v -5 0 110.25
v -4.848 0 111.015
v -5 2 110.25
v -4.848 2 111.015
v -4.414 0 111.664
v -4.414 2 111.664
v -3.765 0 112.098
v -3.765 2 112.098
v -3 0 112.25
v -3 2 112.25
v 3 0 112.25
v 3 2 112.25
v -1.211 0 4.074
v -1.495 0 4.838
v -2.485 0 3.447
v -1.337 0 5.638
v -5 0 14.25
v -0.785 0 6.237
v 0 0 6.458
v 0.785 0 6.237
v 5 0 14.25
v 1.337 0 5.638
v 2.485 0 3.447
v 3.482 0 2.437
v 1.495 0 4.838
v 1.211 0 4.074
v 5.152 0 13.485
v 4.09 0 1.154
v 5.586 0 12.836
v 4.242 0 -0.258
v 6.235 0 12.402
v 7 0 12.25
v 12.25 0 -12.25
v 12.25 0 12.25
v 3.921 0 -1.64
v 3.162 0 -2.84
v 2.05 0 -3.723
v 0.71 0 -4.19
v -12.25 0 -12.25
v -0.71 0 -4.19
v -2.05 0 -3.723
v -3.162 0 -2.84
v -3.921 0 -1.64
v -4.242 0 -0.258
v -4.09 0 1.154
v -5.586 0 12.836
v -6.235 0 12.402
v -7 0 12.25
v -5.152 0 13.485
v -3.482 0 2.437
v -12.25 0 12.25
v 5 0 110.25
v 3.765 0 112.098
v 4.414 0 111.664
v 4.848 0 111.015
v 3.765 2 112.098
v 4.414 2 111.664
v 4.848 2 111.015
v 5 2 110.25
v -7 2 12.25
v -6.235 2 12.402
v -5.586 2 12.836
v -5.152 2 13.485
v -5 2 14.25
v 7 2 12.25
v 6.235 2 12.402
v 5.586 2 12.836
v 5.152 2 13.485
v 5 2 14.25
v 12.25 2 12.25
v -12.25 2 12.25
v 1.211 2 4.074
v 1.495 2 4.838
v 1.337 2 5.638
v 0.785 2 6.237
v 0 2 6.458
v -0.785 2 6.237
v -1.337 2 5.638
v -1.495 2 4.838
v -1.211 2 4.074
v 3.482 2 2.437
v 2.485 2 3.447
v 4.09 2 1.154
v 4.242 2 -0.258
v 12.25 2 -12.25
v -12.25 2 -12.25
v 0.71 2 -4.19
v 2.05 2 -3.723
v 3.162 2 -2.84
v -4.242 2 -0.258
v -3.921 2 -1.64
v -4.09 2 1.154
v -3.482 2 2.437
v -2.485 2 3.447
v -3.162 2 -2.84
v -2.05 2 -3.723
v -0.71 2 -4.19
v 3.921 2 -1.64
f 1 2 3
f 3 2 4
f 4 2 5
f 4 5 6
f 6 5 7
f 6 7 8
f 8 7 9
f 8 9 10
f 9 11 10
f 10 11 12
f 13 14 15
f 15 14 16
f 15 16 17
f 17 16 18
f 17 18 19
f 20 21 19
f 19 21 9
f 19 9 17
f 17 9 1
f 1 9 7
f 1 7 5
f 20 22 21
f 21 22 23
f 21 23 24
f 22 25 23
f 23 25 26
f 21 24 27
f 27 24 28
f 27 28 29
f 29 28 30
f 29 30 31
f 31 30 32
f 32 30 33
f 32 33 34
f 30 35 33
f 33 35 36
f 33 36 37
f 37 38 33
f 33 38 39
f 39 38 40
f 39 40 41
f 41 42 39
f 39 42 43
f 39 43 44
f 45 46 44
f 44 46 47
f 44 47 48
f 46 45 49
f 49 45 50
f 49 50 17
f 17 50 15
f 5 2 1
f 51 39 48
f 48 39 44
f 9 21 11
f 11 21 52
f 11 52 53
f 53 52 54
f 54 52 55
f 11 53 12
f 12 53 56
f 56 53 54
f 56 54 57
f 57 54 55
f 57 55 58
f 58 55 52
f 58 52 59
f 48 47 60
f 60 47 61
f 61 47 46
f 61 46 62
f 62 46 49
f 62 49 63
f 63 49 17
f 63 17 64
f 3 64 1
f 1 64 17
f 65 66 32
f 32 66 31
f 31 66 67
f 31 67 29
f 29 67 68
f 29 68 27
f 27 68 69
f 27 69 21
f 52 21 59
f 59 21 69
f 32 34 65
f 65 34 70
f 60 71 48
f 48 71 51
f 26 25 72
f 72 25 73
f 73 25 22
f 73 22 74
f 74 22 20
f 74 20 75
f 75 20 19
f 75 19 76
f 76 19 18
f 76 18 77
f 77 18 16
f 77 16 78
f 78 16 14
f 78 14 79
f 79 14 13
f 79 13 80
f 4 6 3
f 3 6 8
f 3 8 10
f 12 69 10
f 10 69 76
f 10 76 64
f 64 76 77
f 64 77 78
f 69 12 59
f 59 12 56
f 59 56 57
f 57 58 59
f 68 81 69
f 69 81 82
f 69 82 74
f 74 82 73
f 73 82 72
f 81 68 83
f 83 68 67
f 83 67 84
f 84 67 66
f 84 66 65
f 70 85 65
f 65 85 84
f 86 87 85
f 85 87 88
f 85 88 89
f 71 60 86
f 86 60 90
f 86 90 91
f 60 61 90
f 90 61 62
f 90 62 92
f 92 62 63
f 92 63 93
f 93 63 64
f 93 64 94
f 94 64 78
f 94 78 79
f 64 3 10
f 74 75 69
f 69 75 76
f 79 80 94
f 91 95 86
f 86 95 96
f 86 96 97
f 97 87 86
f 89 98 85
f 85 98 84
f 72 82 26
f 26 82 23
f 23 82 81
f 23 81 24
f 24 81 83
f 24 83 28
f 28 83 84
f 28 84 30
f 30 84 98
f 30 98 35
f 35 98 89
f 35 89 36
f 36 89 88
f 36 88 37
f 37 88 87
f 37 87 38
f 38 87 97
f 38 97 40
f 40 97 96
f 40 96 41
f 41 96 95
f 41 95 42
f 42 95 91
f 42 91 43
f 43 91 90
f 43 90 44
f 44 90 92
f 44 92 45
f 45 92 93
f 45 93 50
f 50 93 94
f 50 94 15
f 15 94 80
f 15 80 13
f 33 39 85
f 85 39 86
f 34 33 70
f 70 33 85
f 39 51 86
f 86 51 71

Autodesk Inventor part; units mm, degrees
ref_plane "YZ Plane" through (0, 0, 0) normal (1, 0, 0) x (0, 1, 0)
ref_plane "XZ Plane" through (0, 0, 0) normal (0, 1, 0) x (-1, 0, 0)
ref_plane "XY Plane" through (0, 0, 0) normal (0, 0, 1) x (1, 0, 0)
sketch "Sketch1" plane through (0, 0, 0) normal (0, 1, 0) x (-1, 0, 0)
  circle A0 centre (0, 0) radius 4.25
  line L0 (-12.25, -12.25) -> (12.25, -12.25)
  line L1 (12.25, -12.25) -> (12.25, 12.25)
  line L2 (12.25, 12.25) -> (-12.25, 12.25)
  line L3 (-12.25, 12.25) -> (-12.25, -12.25)
  line L4 (-12.25, -12.25) -> (12.25, 12.25) construction
  line L5 (12.25, -12.25) -> (-12.25, 12.25) construction
  dimension "d0" = 24.5
  dimension "d1" = 8.5
extrude "Extrusion1" add sketch "Sketch1" along normal blind 2
sketch "Sketch2" plane through (0, 2, 0) normal (0, 1, 0) x (1, 0, 0)
  circle A0 centre (0, -4.9582) radius 1.5
  point P0 (0, 0)
  dimension "d4" = 3
extrude "Extrusion2" cut sketch "Sketch2" against normal blind 3
sketch "Sketch3" plane through (0, 2, 0) normal (0, 1, 0) x (1, 0, 0)
  line L0 (-12.25, -12.25) -> (12.25, -12.25) projected
  line L1 (5, -112.25) -> (-5, -112.25)
  line L2 (-5, -112.25) -> (-5, -12.25)
  line L3 (-5, -12.25) -> (5, -12.25)
  line L4 (5, -12.25) -> (5, -112.25)
  line L5 (5, -112.25) -> (-5, -12.25) construction
  line L6 (-5, -112.25) -> (5, -12.25) construction
  point P0 (0, 0)
  point P1 (0, -62.25)
  point P2 (0, -62.25)
  point P3 (5, -12.25)
  dimension "d7" = 100
  dimension "d8" = 10
extrude "Extrusion3" add sketch "Sketch3" against normal up to surface (2 mm away)
fillet "Fillet1" radius 2 4 edges at (5, 1, 12.25) (-5, 1, 12.25) (5, 1, 112.25) (-5, 1, 112.25)
equation "\"d5\" = d4"
properties part number "pb_hole_stick" material "Lead"
